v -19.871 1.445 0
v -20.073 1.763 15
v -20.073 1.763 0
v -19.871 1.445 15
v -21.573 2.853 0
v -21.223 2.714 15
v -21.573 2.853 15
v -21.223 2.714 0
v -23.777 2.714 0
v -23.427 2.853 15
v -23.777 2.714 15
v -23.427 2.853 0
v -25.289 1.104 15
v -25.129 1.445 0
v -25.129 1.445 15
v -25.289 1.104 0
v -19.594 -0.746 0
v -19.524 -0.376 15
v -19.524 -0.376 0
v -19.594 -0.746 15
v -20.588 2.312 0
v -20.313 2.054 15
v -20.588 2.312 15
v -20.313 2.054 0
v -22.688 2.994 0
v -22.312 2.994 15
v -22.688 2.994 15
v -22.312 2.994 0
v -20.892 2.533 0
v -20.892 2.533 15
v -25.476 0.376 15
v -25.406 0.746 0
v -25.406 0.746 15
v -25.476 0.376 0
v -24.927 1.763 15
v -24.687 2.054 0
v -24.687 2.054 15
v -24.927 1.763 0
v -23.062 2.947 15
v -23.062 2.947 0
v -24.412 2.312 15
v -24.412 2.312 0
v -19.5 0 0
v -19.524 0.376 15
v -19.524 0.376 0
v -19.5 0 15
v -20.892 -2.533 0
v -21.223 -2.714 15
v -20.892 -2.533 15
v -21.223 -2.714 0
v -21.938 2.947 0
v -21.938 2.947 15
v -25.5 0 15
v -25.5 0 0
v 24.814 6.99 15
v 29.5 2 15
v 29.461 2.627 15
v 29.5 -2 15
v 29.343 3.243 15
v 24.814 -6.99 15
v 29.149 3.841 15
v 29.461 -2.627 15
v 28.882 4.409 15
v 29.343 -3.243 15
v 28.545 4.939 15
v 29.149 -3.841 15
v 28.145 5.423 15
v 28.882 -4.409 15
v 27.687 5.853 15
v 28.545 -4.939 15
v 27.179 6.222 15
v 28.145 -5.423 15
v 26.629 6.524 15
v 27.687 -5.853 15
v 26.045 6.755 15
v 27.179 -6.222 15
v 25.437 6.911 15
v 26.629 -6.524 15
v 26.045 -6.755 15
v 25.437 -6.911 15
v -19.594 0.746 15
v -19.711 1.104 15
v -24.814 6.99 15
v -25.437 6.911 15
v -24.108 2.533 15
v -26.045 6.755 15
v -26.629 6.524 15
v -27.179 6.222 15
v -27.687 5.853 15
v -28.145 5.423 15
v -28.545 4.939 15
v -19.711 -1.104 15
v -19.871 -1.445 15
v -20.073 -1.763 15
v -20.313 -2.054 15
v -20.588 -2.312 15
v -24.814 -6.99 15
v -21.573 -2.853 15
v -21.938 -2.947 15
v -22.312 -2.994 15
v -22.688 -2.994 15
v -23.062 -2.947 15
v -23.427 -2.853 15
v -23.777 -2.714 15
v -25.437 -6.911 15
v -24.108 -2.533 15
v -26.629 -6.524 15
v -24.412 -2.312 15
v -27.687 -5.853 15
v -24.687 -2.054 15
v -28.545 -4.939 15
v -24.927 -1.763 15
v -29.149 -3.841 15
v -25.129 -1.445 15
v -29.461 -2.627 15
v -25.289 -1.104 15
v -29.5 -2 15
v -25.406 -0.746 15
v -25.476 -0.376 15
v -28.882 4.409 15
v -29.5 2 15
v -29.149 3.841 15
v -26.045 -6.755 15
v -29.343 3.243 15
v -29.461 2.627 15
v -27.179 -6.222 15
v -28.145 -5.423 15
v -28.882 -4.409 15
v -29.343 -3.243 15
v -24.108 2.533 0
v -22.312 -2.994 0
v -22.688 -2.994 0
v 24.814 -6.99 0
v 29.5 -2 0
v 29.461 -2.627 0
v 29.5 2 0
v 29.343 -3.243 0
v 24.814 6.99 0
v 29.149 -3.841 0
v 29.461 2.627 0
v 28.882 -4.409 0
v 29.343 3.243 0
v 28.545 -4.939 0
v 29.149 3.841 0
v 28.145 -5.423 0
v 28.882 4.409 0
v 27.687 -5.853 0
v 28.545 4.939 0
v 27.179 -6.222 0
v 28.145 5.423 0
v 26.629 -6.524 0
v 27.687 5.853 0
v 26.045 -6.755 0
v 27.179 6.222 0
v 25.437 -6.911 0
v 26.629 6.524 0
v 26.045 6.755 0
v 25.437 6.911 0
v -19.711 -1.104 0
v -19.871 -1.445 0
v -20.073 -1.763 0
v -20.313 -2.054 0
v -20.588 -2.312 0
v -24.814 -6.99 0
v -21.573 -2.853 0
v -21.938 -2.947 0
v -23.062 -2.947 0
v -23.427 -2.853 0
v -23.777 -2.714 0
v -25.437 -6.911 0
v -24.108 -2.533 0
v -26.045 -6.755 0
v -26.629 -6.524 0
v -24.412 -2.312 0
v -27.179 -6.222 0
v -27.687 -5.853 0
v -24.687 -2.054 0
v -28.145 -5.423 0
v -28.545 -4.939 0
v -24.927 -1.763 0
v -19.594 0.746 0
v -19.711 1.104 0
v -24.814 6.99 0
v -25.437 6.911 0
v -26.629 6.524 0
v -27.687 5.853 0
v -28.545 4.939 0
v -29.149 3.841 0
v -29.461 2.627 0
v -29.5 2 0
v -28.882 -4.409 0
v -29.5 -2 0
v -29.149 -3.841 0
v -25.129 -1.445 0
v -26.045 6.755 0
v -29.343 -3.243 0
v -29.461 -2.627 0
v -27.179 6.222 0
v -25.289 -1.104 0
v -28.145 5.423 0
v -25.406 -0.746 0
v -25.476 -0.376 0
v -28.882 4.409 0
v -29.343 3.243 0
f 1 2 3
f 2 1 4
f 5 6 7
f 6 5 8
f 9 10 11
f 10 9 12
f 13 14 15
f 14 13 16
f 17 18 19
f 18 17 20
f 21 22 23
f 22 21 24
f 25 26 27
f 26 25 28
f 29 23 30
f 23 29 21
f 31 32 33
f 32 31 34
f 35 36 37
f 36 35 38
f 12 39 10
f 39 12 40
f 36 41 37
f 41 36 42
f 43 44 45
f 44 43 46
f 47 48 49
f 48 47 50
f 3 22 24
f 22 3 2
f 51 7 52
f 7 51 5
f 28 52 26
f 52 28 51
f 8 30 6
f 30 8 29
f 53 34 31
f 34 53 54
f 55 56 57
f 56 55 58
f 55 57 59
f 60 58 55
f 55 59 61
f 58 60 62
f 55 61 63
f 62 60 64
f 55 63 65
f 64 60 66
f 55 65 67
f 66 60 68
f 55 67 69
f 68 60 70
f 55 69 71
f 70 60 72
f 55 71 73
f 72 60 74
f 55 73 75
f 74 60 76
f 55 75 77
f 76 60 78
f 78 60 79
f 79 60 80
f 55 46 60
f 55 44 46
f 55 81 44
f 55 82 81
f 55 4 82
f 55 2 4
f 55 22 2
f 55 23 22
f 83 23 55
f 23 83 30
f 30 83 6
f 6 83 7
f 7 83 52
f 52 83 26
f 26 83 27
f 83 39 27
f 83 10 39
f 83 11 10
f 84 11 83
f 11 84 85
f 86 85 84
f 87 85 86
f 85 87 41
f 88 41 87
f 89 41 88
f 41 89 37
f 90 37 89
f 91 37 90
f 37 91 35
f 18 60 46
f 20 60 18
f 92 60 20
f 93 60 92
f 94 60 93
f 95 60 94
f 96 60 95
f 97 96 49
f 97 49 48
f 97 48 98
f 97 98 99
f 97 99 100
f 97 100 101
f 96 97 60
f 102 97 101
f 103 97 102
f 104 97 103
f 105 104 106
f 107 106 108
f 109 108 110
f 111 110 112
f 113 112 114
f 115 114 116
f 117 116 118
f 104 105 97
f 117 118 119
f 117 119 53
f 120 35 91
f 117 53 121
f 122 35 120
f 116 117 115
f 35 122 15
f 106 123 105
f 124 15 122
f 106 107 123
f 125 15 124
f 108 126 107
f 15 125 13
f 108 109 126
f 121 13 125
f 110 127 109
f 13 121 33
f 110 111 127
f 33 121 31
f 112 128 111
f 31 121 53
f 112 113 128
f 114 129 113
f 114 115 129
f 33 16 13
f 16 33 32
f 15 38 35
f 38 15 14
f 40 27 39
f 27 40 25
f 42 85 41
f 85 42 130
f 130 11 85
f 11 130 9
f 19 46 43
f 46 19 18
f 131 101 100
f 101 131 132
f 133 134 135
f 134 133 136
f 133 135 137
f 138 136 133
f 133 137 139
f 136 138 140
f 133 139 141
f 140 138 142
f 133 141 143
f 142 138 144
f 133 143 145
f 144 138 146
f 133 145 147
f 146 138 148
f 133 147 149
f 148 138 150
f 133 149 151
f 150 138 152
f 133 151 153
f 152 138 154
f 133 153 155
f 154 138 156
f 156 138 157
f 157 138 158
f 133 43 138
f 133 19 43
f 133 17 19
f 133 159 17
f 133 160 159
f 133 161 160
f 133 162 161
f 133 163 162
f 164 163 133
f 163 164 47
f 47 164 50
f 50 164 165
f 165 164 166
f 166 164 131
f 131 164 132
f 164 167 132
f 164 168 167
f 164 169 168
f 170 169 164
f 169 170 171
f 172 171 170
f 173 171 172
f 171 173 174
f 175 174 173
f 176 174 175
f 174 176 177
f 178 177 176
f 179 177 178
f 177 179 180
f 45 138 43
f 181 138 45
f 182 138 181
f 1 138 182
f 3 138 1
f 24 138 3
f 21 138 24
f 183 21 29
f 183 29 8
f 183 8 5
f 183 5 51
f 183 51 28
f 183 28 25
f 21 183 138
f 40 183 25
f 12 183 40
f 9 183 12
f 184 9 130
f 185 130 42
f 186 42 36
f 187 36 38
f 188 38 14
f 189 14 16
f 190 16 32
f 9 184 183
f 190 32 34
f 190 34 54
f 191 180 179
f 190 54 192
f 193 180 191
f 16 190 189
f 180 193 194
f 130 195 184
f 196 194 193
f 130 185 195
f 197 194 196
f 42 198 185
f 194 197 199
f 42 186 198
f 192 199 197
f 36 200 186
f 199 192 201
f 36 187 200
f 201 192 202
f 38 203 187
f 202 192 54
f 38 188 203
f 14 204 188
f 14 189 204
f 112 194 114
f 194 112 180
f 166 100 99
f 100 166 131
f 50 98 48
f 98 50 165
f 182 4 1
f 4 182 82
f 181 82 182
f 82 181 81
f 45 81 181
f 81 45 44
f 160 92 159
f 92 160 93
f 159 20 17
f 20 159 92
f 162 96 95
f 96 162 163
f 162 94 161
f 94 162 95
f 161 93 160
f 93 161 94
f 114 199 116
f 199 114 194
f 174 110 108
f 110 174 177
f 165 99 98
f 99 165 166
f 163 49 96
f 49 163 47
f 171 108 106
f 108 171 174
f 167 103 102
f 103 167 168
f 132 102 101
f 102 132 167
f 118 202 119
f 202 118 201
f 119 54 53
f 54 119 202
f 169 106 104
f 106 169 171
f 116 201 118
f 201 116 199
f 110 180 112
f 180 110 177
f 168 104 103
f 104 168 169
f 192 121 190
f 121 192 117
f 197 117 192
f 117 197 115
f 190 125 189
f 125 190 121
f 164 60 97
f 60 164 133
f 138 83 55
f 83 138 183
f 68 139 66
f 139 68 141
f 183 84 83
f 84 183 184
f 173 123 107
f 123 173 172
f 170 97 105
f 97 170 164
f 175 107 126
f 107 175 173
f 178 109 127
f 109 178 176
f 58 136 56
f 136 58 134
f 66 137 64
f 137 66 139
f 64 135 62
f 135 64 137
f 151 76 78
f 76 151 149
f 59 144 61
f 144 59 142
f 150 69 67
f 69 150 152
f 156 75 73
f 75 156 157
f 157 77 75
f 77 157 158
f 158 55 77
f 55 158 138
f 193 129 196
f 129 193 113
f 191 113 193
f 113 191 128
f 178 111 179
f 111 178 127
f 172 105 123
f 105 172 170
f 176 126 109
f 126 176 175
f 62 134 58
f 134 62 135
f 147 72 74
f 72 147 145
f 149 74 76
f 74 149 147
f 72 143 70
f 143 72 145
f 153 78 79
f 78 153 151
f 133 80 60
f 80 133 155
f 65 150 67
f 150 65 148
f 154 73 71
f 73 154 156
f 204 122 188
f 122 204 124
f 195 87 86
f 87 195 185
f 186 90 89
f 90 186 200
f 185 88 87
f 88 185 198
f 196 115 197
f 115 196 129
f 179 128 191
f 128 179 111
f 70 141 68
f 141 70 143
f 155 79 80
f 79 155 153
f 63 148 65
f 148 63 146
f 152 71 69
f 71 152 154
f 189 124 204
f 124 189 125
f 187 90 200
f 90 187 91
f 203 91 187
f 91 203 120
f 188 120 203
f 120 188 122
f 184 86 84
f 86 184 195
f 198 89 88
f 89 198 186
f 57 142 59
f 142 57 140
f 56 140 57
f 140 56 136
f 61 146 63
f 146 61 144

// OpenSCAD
$fn = 50;


difference() {
	union() {
		hull() {
			translate(v = [-24.5000000000, 2.0000000000, 0]) {
				cylinder(h = 15, r = 5);
			}
			translate(v = [24.5000000000, 2.0000000000, 0]) {
				cylinder(h = 15, r = 5);
			}
			translate(v = [-24.5000000000, -2.0000000000, 0]) {
				cylinder(h = 15, r = 5);
			}
			translate(v = [24.5000000000, -2.0000000000, 0]) {
				cylinder(h = 15, r = 5);
			}
		}
	}
	union() {
		translate(v = [-22.5000000000, 0.0000000000, 0]) {
			cylinder(h = 15, r = 3.0000000000);
		}
		translate(v = [-22.5000000000, 0.0000000000, 0]) {
			cylinder(h = 15, r = 1.5000000000);
		}
		translate(v = [-22.5000000000, 0.0000000000, 0]) {
			cylinder(h = 15, r = 1.5000000000);
		}
		translate(v = [-22.5000000000, 0.0000000000, 0]) {
			cylinder(h = 15, r = 1.5000000000);
		}
	}
}
